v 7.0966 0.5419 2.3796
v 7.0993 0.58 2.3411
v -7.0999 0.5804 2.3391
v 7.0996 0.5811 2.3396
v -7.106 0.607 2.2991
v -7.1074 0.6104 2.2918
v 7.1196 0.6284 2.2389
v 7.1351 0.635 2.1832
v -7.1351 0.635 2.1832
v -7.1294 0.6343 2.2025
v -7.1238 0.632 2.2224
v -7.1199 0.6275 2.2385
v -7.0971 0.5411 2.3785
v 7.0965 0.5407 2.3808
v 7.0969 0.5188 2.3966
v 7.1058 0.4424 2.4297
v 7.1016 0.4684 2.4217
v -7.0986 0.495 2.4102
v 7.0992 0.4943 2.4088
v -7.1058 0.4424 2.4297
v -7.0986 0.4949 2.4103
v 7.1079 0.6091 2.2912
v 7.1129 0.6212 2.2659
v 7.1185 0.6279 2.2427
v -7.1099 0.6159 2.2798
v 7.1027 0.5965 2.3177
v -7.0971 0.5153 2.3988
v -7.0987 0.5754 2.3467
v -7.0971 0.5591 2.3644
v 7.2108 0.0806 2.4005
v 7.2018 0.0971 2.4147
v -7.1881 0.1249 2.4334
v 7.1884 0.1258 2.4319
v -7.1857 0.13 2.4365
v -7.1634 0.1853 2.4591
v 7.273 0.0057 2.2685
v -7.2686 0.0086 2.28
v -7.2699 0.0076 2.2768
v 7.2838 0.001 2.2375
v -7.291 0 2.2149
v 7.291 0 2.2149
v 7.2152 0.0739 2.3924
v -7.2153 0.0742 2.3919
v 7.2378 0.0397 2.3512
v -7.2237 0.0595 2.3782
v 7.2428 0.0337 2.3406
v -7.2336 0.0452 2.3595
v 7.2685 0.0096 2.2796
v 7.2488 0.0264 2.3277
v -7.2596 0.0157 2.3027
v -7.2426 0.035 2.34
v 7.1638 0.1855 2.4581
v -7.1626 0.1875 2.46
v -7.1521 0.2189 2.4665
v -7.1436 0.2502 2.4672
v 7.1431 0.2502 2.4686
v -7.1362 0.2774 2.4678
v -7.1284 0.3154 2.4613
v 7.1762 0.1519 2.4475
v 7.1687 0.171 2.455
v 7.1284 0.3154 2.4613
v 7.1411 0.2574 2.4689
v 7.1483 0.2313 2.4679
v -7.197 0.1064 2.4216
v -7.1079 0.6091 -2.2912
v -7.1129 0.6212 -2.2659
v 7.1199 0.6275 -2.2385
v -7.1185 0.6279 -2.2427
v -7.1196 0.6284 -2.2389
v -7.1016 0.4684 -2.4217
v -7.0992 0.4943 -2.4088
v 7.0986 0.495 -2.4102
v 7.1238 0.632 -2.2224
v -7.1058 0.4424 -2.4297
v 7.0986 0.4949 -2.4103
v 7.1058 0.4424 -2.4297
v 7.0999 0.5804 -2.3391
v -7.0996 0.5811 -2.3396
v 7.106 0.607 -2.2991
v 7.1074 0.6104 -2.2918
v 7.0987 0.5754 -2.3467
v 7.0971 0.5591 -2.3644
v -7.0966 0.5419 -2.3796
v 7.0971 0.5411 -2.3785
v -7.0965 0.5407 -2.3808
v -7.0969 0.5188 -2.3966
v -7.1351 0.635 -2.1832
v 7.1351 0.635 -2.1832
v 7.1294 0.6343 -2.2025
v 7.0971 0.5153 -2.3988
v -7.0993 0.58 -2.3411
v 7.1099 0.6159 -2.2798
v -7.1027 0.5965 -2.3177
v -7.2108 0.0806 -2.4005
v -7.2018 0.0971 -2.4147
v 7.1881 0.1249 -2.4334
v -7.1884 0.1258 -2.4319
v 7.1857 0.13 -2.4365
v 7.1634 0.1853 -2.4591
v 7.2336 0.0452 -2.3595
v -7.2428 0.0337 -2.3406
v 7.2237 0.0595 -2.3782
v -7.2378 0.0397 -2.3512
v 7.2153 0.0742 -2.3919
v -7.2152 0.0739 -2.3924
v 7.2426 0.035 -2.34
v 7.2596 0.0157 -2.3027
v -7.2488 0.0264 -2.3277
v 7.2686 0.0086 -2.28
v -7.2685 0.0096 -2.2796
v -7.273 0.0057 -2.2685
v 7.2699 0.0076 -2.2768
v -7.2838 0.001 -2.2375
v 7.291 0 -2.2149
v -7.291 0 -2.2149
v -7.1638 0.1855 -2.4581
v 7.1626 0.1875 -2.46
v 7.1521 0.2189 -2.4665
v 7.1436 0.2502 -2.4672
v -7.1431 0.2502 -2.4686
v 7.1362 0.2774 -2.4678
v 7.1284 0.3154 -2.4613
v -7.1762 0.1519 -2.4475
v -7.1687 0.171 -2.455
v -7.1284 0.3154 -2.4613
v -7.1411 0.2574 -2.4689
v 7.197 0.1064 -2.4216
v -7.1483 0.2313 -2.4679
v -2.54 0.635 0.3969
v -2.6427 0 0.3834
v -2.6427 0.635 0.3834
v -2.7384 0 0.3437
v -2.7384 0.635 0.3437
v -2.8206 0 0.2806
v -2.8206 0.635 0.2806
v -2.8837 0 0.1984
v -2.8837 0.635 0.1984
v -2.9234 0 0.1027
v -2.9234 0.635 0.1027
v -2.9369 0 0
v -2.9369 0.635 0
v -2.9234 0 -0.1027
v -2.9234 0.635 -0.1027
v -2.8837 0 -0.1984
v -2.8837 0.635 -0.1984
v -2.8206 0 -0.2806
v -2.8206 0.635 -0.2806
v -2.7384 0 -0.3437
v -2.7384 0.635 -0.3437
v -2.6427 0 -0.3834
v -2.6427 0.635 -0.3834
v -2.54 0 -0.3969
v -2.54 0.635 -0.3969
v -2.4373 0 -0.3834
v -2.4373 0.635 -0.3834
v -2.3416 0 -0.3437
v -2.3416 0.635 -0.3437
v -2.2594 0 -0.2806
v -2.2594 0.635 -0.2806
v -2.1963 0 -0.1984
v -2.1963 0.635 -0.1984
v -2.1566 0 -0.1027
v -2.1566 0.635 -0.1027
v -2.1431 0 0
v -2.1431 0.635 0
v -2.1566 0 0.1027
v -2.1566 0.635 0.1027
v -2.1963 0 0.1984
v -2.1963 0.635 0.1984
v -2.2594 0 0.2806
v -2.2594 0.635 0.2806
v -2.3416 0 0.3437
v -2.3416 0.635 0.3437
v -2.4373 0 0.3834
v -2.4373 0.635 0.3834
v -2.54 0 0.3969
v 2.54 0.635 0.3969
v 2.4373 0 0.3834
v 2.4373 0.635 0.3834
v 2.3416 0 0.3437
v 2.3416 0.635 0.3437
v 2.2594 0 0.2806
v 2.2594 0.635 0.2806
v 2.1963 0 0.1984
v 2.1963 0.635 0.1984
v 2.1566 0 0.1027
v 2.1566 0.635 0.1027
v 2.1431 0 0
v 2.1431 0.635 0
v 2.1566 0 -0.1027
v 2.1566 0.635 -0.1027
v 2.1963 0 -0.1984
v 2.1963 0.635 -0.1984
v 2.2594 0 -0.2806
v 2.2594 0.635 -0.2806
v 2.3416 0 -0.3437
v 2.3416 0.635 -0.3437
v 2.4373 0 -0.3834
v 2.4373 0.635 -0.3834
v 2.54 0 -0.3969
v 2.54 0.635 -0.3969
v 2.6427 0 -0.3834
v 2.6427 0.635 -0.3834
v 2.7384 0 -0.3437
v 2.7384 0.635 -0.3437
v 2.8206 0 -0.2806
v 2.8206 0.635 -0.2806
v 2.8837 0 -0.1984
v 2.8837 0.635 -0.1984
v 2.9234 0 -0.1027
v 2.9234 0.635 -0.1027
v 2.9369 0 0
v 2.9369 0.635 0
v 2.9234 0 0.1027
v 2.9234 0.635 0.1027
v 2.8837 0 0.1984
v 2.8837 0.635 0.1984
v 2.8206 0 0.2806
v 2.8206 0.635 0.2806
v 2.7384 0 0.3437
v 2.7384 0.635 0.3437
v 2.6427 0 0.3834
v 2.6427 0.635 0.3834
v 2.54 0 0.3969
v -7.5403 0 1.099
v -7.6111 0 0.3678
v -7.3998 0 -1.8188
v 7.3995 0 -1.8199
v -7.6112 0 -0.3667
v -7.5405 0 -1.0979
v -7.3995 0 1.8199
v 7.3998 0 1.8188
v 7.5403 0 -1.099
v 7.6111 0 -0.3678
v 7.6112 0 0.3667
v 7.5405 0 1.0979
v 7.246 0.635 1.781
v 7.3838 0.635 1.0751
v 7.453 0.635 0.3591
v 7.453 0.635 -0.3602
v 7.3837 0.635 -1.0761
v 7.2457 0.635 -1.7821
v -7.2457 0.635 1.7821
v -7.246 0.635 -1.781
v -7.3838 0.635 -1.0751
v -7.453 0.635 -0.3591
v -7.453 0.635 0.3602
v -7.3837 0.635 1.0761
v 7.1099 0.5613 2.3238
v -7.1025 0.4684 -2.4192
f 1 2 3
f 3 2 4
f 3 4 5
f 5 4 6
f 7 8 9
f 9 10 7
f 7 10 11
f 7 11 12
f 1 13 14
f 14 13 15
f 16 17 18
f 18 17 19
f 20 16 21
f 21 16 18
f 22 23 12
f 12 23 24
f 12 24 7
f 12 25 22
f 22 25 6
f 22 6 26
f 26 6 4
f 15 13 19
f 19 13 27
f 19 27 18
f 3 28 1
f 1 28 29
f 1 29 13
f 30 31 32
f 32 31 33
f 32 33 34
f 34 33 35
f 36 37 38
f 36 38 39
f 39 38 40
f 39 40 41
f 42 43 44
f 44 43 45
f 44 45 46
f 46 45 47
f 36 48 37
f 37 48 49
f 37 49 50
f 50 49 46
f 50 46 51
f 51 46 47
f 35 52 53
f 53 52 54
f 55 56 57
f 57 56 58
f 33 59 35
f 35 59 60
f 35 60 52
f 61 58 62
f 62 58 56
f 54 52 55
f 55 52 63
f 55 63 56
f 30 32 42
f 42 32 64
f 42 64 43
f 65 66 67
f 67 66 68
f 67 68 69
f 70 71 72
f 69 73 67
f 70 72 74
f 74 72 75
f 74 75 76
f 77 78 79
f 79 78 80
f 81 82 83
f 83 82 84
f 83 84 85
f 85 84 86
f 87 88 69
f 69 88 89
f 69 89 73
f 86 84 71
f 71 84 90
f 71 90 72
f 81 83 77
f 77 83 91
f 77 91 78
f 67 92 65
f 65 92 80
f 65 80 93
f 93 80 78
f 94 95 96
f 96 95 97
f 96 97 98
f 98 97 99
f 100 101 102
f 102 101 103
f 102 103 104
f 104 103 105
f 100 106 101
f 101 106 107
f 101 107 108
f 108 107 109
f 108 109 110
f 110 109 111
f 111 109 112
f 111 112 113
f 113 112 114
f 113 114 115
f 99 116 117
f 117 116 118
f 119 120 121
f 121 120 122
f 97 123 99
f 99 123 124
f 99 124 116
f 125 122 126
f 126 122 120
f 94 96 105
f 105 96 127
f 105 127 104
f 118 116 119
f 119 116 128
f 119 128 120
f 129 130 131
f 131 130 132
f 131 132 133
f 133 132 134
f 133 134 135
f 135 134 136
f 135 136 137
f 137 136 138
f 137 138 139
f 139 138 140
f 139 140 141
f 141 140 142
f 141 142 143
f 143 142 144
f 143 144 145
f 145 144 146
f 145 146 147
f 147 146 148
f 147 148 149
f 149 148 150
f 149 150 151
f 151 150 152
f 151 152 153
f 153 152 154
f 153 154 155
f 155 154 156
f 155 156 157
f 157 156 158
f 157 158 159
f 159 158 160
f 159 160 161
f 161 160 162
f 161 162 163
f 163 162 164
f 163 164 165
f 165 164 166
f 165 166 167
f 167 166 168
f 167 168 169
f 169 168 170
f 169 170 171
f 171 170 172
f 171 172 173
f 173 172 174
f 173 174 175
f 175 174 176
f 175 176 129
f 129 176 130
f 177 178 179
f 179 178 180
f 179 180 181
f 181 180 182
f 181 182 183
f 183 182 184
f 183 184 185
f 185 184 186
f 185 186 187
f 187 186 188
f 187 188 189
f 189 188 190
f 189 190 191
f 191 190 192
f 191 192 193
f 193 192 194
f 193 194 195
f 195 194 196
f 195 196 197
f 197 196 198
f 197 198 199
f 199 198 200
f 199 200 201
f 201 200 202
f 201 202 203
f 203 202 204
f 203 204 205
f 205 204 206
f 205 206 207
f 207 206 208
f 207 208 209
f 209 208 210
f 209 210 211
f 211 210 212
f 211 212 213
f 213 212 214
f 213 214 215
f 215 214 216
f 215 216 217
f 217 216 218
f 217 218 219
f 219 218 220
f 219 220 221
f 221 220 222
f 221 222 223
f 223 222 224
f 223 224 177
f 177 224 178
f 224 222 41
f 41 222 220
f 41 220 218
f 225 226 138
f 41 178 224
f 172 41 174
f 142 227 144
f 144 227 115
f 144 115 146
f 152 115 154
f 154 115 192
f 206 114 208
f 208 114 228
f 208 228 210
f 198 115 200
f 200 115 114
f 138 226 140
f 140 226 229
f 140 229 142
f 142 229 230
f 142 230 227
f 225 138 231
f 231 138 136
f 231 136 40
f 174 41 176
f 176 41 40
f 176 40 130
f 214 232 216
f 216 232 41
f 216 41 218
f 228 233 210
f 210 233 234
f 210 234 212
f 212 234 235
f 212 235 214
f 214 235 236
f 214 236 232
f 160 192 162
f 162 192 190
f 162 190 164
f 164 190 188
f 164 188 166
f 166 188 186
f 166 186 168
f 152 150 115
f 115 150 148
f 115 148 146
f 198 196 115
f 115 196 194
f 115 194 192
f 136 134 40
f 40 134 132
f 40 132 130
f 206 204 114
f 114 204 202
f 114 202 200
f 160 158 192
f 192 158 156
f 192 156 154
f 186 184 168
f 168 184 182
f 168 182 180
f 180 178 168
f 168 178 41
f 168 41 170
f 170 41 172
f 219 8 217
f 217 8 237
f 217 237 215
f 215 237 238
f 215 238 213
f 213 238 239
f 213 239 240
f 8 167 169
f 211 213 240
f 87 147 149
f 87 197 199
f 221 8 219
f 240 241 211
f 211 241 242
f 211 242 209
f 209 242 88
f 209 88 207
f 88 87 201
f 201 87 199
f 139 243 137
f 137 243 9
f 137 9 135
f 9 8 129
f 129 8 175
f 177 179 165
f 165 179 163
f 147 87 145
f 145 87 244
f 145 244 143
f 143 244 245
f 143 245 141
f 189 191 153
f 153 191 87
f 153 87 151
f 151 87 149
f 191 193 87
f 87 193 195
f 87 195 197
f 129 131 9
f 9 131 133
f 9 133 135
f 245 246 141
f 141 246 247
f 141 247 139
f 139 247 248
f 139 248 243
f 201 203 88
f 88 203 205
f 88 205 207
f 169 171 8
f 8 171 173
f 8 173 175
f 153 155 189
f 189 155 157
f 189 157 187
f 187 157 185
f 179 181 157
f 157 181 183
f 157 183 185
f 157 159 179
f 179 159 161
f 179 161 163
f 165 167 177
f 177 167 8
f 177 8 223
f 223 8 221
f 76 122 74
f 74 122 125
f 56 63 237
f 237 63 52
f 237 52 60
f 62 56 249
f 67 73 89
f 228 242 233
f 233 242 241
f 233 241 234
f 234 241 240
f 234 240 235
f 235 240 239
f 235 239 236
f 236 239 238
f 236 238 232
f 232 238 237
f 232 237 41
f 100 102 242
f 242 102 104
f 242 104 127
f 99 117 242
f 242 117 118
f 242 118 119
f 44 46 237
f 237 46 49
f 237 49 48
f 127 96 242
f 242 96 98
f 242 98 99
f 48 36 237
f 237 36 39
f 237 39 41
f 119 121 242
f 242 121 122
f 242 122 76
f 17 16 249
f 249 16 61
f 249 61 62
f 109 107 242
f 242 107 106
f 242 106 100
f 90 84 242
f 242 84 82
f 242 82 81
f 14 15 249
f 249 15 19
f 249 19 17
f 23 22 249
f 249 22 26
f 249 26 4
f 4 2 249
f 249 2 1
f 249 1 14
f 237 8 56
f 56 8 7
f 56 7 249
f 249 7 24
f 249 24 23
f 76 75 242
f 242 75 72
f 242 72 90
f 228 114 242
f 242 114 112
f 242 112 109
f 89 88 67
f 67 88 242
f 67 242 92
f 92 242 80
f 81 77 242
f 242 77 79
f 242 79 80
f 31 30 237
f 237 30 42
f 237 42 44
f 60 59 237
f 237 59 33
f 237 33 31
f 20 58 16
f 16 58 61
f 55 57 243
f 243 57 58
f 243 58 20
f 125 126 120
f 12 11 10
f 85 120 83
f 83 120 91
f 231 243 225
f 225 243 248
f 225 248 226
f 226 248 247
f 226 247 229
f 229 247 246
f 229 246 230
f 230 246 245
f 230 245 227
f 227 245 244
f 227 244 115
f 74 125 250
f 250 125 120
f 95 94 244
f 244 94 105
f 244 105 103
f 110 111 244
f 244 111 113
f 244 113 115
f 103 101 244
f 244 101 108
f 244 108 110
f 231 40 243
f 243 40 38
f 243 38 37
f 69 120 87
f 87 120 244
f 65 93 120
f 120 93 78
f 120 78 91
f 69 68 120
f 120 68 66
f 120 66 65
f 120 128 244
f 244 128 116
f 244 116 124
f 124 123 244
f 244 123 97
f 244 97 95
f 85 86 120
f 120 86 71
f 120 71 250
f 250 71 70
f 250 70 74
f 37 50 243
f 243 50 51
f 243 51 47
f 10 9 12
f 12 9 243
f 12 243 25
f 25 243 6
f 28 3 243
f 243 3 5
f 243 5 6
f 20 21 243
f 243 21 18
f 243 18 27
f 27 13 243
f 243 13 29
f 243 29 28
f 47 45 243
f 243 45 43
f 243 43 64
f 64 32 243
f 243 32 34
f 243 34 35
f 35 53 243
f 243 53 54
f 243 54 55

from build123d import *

# Parameters (mm, degrees)
BOSS_EXTRUDE1_DEPTH                 = 0.635
BOSS_EXTRUDE1_TAPER                 = 14
F_1_32_0_03125_DIAMETER_HOLE1_D     = 0.79375
F_1_32_0_03125_DIAMETER_HOLE1_DEPTH = 12.7
F_1_32_0_03125_DIAMETER_HOLE1_TIP   = 0.238466558
FILLET1_R                           = 0.254


with BuildPart() as part:
    # Sketch1 → Boss-Extrude1 (new body)
    with BuildSketch(Plane(origin=(0, 0, 0), x_dir=(1, 0, 0), z_dir=(0, 1, 0))):
        with BuildLine():
            Line((-7.184204897, -2.54), (7.184204897, -2.54))
            ThreePointArc((7.184204897, -2.54), (7.62, 0), (7.184204897, 2.54))
            Line((7.184204897, 2.54), (-7.184204897, 2.54))
            ThreePointArc((-7.184204897, 2.54), (-7.62, 0), (-7.184204897, -2.54))
        make_face()
    extrude(amount=BOSS_EXTRUDE1_DEPTH, taper=BOSS_EXTRUDE1_TAPER)

    # 1/32 (0.03125) Diameter Hole1
    with Locations(Plane(origin=(0, 0, 0), x_dir=(-1, 0, 0), z_dir=(0, -1, 0))):
        with Locations((2.54, 0), (-2.54, 0)):
            Hole(F_1_32_0_03125_DIAMETER_HOLE1_D / 2, depth=F_1_32_0_03125_DIAMETER_HOLE1_DEPTH)
            with Locations((0, 0, -(F_1_32_0_03125_DIAMETER_HOLE1_DEPTH + F_1_32_0_03125_DIAMETER_HOLE1_TIP / 2))):  # 118° drill point
                Cone(0, F_1_32_0_03125_DIAMETER_HOLE1_D / 2, F_1_32_0_03125_DIAMETER_HOLE1_TIP, mode=Mode.SUBTRACT)

    # Fillet1
    fillet1_edges = [part.edges().sort_by_distance(p)[0] for p in [
        (0, 0, -2.54),
        (0, 0.635, -2.381676718),
        (0, 0, 2.54),
        (0, 0.635, 2.381676718),
    ]]
    fillet(fillet1_edges, radius=FILLET1_R)


solid = part.part
